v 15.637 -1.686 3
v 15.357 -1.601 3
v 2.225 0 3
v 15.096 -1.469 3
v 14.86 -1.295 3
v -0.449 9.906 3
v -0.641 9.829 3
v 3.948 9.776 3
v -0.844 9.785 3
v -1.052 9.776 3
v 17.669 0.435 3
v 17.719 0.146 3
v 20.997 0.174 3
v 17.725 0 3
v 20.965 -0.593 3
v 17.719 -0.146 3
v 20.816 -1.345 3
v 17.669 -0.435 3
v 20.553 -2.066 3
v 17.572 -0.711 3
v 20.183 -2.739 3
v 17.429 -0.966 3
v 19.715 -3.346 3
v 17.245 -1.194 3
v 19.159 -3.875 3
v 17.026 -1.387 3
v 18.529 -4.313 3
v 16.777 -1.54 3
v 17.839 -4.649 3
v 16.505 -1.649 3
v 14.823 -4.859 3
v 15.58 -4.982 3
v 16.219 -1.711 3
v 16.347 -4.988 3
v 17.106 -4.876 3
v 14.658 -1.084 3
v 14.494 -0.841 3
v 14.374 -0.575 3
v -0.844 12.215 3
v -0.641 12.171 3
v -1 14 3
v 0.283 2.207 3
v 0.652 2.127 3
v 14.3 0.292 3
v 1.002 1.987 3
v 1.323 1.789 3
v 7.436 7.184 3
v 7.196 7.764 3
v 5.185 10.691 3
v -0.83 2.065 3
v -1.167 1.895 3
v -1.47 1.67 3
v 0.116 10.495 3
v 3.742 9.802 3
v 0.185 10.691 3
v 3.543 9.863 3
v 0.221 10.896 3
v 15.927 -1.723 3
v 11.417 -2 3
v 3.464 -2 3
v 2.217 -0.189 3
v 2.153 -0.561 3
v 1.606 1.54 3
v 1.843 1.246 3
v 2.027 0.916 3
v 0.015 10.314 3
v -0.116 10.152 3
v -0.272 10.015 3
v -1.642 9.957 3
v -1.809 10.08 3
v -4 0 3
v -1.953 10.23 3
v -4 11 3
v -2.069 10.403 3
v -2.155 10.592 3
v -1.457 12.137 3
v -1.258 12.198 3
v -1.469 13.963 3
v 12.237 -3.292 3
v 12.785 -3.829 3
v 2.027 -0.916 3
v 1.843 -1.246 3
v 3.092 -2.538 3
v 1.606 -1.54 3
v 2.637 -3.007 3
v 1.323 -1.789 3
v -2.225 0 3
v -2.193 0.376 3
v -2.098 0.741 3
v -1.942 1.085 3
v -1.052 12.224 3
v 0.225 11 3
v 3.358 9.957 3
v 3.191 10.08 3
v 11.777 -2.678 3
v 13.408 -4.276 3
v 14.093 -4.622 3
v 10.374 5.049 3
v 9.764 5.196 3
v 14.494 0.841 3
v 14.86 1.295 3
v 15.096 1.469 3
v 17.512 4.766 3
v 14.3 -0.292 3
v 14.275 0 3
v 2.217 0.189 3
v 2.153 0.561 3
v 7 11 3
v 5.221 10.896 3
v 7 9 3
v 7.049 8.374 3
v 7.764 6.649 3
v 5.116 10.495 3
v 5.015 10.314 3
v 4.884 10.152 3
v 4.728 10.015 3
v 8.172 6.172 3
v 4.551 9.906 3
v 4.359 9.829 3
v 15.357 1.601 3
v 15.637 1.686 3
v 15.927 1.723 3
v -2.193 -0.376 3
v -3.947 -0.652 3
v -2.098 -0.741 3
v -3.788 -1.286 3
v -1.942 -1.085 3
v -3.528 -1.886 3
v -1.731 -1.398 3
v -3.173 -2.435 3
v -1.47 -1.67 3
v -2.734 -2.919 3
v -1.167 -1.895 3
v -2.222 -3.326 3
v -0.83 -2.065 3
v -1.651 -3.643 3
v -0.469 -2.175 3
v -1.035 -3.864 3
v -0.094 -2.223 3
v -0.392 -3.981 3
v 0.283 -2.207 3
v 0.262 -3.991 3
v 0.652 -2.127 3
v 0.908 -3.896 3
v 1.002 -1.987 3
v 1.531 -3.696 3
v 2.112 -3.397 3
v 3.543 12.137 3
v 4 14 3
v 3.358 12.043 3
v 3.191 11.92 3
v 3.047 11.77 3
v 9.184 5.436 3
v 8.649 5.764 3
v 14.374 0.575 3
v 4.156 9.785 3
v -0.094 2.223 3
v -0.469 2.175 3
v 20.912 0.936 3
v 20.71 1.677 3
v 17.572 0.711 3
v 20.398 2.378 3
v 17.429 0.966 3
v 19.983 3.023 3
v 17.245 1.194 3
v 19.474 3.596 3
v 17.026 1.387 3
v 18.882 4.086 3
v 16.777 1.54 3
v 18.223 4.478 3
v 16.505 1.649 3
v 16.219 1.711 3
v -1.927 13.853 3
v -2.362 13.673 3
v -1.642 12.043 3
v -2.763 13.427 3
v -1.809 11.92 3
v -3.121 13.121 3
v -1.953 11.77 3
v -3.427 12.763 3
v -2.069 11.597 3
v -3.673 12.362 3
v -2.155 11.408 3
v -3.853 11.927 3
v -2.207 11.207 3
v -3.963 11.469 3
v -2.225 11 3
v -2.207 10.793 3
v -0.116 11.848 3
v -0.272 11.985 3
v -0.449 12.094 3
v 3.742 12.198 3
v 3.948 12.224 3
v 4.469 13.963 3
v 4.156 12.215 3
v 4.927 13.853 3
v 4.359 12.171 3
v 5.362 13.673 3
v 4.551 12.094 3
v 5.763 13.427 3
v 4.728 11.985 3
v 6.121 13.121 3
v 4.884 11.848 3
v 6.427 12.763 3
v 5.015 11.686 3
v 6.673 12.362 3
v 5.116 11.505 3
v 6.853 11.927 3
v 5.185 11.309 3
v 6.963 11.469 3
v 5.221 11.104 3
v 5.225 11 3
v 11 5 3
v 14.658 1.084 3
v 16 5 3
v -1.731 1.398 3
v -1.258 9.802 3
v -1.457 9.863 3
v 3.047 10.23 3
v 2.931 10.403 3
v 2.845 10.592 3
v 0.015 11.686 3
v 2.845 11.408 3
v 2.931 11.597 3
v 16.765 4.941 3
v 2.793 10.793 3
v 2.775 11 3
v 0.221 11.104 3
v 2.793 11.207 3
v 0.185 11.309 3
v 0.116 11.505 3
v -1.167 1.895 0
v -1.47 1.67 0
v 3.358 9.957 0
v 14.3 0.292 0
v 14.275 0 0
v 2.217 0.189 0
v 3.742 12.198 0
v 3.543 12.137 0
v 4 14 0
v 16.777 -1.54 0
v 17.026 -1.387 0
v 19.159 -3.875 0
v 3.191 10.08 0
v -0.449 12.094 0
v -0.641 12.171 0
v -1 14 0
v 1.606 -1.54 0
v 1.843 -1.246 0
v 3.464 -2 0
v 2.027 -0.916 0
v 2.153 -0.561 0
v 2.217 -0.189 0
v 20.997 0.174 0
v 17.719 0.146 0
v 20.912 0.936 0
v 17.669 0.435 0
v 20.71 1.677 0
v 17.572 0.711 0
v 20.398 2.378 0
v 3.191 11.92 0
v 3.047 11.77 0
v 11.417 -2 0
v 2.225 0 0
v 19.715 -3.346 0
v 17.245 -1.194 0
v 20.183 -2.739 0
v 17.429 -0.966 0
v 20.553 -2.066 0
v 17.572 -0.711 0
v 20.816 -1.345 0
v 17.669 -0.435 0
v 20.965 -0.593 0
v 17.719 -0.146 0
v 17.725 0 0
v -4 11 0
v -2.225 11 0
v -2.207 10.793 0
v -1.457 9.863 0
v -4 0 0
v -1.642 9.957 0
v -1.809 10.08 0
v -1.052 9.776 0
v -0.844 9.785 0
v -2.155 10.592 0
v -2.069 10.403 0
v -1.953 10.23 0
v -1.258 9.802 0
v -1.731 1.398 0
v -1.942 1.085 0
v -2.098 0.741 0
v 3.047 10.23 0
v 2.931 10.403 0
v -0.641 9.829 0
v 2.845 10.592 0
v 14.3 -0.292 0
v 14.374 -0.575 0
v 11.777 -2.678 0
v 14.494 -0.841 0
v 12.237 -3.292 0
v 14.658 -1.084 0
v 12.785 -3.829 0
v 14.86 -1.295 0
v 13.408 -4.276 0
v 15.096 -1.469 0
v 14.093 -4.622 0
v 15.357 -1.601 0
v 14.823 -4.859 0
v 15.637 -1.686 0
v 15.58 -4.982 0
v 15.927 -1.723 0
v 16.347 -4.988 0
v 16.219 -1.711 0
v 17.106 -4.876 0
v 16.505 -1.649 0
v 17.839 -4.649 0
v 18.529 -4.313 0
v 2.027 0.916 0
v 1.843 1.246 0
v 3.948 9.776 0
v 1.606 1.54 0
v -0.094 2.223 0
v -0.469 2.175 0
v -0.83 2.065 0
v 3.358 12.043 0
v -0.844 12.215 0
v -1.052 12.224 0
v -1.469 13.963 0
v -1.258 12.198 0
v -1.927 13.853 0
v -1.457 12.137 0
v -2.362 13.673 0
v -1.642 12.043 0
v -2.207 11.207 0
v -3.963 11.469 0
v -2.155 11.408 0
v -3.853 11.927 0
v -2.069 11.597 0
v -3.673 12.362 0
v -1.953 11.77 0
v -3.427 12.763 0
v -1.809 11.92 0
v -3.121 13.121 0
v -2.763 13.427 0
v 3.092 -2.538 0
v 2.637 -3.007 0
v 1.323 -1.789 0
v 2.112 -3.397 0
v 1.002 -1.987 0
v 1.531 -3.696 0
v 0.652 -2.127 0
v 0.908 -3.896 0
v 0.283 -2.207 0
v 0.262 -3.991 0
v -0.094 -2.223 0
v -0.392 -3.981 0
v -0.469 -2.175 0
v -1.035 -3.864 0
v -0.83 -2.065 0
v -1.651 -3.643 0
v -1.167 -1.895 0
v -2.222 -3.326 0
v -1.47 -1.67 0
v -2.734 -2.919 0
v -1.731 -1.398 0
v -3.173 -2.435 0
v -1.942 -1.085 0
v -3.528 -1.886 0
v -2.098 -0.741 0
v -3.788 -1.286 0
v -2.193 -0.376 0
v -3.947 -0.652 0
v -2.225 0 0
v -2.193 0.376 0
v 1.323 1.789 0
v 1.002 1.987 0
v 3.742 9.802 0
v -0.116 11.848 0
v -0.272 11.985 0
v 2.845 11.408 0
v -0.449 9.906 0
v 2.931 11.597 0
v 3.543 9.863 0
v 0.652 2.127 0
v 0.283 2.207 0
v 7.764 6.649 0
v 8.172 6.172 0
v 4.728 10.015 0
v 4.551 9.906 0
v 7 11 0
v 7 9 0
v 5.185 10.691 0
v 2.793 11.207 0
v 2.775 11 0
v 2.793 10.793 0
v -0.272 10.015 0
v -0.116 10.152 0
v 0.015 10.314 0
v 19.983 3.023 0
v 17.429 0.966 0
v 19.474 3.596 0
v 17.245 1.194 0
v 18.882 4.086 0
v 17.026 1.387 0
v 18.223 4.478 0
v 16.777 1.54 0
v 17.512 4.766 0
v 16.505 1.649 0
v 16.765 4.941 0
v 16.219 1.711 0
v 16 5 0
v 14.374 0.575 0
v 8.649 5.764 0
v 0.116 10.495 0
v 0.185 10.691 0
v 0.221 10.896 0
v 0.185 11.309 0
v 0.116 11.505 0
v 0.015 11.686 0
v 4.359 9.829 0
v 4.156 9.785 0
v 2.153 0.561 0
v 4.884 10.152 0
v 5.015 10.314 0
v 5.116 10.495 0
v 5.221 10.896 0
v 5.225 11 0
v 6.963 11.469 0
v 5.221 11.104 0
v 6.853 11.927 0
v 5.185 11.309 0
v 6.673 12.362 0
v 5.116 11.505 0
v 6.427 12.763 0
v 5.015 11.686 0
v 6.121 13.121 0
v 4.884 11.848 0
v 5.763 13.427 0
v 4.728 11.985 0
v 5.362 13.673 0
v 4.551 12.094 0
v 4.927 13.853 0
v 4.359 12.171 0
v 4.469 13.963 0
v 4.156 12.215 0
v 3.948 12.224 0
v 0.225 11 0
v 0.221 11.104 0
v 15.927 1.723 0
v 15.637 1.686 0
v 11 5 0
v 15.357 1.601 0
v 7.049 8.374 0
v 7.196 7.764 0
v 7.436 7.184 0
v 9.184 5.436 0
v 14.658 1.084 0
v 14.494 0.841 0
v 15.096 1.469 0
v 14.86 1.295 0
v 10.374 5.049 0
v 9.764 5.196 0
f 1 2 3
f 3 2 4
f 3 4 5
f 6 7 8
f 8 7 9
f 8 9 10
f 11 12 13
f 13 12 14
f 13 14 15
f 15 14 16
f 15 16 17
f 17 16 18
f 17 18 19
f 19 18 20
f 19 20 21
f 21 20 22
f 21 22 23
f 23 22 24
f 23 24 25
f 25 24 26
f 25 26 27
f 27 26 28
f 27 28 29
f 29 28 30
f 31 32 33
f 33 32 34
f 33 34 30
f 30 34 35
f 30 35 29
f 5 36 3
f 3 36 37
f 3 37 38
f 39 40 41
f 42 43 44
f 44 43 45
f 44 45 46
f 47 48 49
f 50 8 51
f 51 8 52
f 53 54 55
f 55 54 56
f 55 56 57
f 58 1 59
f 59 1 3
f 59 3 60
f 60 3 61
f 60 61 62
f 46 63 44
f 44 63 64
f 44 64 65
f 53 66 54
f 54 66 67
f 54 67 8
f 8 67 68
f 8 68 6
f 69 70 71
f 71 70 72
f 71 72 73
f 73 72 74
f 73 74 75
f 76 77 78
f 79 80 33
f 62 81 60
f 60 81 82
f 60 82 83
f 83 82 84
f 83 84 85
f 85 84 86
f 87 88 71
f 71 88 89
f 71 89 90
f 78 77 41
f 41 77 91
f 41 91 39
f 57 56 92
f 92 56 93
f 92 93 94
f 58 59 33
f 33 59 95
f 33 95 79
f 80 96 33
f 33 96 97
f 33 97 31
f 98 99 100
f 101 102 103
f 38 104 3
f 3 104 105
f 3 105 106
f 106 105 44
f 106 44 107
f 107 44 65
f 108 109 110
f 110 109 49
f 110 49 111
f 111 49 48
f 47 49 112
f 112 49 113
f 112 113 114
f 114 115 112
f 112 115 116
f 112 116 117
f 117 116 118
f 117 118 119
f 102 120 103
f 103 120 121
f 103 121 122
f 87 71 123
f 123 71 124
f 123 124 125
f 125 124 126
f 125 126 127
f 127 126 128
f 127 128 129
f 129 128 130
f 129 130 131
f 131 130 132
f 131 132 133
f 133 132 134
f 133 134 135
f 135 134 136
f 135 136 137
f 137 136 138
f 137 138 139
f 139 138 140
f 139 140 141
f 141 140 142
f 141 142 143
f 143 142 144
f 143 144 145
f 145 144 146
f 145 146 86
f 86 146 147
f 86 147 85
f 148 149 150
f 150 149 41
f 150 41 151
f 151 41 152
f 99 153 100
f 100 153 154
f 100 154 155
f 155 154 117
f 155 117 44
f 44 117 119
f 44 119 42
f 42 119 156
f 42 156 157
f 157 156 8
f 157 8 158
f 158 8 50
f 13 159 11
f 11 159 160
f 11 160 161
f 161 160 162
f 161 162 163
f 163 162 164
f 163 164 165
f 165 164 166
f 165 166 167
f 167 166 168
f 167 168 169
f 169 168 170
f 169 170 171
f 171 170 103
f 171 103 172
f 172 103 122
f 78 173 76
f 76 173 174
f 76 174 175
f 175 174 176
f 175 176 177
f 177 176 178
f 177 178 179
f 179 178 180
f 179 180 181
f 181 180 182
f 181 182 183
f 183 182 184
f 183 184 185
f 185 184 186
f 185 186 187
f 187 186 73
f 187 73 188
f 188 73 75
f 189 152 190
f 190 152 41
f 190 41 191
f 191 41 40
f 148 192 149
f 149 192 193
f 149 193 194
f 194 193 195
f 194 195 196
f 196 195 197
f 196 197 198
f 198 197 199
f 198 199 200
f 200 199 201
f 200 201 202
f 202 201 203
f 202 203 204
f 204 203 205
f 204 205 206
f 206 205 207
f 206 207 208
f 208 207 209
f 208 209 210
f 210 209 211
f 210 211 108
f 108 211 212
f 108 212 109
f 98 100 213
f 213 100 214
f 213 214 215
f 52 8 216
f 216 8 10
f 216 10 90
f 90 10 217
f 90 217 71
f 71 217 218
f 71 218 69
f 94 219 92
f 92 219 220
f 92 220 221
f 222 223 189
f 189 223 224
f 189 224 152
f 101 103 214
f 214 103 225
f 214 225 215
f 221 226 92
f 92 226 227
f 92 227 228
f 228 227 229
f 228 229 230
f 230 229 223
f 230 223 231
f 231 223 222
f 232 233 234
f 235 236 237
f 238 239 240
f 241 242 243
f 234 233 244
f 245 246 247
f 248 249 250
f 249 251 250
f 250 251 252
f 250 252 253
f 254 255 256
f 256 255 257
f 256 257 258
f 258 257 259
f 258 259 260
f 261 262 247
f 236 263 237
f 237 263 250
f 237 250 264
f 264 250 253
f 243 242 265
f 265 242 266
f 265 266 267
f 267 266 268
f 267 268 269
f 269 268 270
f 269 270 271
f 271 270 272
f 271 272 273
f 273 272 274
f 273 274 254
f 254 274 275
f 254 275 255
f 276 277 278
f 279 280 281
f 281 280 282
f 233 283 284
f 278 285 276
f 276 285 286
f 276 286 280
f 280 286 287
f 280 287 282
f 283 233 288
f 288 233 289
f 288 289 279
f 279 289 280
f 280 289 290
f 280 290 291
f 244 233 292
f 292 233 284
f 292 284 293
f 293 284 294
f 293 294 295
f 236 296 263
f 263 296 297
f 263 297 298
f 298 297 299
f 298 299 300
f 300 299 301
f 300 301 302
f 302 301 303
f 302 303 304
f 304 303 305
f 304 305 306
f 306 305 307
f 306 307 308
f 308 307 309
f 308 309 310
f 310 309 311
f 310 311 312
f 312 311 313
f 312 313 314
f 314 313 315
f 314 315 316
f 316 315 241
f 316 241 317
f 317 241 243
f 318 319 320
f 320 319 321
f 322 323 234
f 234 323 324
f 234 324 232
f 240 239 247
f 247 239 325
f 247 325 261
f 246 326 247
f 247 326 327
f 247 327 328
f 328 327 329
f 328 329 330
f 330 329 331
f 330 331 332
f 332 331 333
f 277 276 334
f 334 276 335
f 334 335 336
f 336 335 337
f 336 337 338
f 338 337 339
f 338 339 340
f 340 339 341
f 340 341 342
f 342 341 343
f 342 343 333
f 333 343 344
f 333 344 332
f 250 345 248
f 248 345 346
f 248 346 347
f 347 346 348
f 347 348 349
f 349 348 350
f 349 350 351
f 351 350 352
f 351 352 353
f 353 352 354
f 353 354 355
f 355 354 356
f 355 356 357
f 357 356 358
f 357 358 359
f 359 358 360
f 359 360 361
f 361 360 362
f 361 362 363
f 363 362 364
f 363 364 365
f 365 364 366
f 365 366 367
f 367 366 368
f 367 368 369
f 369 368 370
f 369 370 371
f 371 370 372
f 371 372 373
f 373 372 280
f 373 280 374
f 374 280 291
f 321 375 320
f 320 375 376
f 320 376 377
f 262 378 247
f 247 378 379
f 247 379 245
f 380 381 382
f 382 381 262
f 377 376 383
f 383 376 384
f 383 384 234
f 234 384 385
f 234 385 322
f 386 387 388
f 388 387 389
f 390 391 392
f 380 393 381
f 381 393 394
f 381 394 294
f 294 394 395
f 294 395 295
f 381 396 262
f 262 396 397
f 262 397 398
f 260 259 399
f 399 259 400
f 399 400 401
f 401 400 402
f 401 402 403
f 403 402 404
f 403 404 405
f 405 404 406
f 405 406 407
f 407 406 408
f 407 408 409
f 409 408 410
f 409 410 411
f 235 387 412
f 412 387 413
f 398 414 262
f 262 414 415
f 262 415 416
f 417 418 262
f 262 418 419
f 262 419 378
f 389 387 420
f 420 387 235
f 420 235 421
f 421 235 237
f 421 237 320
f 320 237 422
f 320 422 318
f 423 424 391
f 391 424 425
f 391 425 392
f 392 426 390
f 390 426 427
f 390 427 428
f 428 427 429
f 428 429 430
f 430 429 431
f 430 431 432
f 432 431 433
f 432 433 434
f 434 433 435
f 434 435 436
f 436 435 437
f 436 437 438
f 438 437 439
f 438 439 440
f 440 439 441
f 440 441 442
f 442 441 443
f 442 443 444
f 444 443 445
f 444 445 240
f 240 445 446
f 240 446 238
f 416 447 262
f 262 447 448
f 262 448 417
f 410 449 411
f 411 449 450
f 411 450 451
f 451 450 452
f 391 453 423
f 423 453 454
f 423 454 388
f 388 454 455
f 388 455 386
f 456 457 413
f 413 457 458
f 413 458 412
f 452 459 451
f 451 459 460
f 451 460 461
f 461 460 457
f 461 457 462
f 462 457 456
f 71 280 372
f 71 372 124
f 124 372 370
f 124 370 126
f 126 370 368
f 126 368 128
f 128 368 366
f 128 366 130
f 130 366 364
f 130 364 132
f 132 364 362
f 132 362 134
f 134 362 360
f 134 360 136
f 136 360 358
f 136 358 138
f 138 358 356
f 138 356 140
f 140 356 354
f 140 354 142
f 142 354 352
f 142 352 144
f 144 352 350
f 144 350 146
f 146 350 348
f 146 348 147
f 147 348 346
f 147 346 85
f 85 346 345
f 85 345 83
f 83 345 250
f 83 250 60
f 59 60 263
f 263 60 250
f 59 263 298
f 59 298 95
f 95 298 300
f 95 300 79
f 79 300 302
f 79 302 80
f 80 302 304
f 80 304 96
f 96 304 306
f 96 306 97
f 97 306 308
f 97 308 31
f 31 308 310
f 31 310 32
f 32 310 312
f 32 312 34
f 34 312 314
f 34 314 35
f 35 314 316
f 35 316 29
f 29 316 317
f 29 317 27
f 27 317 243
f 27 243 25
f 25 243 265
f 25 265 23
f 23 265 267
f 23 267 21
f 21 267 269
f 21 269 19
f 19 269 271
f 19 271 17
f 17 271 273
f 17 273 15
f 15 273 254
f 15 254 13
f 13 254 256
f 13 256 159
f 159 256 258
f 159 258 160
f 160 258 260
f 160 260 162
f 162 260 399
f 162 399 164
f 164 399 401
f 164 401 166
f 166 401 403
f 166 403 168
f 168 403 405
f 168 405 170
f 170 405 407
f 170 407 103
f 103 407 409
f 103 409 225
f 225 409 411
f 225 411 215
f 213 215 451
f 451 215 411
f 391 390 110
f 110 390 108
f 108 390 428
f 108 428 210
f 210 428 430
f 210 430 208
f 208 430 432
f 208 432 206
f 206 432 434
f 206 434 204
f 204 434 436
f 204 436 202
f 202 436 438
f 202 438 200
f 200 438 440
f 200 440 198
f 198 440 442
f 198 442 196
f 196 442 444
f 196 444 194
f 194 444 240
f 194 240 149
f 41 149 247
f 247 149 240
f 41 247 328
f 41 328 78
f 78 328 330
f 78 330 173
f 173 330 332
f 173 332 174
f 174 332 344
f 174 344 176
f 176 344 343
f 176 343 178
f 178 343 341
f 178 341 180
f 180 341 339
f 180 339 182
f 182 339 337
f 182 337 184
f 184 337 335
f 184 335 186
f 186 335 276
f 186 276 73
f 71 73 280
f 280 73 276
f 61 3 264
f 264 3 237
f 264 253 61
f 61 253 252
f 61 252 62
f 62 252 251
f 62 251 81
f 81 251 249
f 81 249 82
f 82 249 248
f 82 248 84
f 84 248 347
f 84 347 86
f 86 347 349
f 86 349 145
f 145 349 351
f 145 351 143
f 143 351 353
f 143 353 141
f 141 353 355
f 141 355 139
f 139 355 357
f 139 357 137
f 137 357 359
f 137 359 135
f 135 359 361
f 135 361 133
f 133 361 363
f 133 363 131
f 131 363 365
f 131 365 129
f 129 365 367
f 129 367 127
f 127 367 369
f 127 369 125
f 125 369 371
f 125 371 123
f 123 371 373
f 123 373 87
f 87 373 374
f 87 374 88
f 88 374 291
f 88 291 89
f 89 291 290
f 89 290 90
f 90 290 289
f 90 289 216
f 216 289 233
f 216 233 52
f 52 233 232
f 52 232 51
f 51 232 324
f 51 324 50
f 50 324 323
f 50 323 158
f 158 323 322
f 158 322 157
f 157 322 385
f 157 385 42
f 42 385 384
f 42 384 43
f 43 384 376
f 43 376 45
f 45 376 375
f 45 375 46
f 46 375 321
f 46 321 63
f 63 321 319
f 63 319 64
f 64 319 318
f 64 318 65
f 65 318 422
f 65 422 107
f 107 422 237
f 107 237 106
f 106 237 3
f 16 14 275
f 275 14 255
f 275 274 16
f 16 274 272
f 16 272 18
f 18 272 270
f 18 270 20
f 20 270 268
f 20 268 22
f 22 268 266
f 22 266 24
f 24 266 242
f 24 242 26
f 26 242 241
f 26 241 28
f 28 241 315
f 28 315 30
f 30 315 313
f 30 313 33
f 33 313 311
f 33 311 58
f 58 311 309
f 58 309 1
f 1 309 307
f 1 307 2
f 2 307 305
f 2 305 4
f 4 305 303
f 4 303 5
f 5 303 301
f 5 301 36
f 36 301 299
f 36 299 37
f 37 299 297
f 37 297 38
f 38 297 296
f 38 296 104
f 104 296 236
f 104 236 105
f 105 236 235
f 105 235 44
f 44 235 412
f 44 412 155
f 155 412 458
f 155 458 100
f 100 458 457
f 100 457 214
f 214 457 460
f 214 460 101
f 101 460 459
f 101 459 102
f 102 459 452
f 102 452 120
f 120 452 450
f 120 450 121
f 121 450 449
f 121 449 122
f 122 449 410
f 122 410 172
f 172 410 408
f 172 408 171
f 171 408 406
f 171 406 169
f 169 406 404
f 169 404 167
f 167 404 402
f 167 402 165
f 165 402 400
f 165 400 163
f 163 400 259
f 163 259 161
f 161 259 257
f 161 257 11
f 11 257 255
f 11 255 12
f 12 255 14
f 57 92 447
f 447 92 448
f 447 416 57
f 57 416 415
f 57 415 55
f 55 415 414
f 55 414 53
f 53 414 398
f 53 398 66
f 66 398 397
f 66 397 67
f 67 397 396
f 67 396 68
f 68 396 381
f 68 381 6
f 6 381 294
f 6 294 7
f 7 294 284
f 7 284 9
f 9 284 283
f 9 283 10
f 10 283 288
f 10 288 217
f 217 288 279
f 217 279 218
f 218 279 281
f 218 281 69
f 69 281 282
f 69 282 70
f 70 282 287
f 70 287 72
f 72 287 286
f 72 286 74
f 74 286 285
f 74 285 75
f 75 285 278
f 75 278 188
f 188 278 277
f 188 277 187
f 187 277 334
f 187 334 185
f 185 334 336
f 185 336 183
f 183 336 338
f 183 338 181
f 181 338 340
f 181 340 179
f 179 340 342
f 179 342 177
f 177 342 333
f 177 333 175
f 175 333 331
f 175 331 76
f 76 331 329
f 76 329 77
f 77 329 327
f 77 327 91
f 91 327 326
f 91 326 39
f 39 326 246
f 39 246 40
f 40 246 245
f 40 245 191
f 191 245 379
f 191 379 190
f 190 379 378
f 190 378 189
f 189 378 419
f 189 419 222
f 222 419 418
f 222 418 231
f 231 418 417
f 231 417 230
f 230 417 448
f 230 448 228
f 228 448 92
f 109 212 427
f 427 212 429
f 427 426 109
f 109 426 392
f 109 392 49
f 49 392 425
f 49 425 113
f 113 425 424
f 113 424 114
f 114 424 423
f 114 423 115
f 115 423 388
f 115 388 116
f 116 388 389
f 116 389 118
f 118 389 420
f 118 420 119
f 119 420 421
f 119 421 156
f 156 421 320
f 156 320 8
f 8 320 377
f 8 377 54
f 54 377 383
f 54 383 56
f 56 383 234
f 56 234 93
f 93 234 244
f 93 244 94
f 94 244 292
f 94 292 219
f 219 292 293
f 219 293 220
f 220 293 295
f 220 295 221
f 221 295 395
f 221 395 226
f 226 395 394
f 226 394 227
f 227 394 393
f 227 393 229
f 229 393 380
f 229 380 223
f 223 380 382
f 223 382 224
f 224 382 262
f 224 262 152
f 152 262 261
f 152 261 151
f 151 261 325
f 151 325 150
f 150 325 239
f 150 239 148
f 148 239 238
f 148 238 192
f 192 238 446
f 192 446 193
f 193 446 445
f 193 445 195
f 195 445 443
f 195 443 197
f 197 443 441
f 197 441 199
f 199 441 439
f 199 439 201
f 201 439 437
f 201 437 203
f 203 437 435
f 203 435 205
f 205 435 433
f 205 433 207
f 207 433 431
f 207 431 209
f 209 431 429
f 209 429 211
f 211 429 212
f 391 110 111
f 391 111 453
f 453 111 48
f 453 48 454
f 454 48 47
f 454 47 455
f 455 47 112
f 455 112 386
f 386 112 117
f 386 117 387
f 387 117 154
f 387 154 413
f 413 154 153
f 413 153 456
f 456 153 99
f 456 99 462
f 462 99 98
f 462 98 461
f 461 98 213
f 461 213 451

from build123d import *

# Parameters (mm, degrees)
SKETCH1_R           = 2.225
SKETCH1_R_2         = 1.725
SKETCH1_R_3         = 1.225
BOSS_EXTRUDE1_DEPTH = 3
FILLET1_R           = 4


with BuildPart() as part:
    # Sketch1 → Boss-Extrude1 (new body)
    with BuildSketch(Plane.XY):
        with BuildLine():
            Line((3.464101615, -2), (11.417424305, -2))
            ThreePointArc((11.417424305, -2), (20.183300133, -2.738612788), (16, 5))
            Line((16, 5), (7, 5))
            Line((7, 5), (7, 11))
            ThreePointArc((7, 11), (6.121320344, 13.121320344), (4, 14))
            Line((4, 14), (-1, 14))
            ThreePointArc((-1, 14), (-3.121320344, 13.121320344), (-4, 11))
            Line((-4, 11), (-4, 0))
            ThreePointArc((-4, 0), (-1.03527618, -3.863703305), (3.464101615, -2))
        make_face()
        Circle(SKETCH1_R, mode=Mode.SUBTRACT)
        with Locations((16, 0)):
            Circle(SKETCH1_R_2, mode=Mode.SUBTRACT)
        with Locations((-1, 11)):
            Circle(SKETCH1_R_3, mode=Mode.SUBTRACT)
        with Locations((4, 11)):
            Circle(SKETCH1_R_3, mode=Mode.SUBTRACT)
    extrude(amount=BOSS_EXTRUDE1_DEPTH)

    # Fillet1
    fillet1_edges = [part.edges().sort_by_distance(p)[0] for p in [
        (7, 5, 1.5),
        (16, 5, 1.5),
    ]]
    fillet(fillet1_edges, radius=FILLET1_R)


solid = part.part
